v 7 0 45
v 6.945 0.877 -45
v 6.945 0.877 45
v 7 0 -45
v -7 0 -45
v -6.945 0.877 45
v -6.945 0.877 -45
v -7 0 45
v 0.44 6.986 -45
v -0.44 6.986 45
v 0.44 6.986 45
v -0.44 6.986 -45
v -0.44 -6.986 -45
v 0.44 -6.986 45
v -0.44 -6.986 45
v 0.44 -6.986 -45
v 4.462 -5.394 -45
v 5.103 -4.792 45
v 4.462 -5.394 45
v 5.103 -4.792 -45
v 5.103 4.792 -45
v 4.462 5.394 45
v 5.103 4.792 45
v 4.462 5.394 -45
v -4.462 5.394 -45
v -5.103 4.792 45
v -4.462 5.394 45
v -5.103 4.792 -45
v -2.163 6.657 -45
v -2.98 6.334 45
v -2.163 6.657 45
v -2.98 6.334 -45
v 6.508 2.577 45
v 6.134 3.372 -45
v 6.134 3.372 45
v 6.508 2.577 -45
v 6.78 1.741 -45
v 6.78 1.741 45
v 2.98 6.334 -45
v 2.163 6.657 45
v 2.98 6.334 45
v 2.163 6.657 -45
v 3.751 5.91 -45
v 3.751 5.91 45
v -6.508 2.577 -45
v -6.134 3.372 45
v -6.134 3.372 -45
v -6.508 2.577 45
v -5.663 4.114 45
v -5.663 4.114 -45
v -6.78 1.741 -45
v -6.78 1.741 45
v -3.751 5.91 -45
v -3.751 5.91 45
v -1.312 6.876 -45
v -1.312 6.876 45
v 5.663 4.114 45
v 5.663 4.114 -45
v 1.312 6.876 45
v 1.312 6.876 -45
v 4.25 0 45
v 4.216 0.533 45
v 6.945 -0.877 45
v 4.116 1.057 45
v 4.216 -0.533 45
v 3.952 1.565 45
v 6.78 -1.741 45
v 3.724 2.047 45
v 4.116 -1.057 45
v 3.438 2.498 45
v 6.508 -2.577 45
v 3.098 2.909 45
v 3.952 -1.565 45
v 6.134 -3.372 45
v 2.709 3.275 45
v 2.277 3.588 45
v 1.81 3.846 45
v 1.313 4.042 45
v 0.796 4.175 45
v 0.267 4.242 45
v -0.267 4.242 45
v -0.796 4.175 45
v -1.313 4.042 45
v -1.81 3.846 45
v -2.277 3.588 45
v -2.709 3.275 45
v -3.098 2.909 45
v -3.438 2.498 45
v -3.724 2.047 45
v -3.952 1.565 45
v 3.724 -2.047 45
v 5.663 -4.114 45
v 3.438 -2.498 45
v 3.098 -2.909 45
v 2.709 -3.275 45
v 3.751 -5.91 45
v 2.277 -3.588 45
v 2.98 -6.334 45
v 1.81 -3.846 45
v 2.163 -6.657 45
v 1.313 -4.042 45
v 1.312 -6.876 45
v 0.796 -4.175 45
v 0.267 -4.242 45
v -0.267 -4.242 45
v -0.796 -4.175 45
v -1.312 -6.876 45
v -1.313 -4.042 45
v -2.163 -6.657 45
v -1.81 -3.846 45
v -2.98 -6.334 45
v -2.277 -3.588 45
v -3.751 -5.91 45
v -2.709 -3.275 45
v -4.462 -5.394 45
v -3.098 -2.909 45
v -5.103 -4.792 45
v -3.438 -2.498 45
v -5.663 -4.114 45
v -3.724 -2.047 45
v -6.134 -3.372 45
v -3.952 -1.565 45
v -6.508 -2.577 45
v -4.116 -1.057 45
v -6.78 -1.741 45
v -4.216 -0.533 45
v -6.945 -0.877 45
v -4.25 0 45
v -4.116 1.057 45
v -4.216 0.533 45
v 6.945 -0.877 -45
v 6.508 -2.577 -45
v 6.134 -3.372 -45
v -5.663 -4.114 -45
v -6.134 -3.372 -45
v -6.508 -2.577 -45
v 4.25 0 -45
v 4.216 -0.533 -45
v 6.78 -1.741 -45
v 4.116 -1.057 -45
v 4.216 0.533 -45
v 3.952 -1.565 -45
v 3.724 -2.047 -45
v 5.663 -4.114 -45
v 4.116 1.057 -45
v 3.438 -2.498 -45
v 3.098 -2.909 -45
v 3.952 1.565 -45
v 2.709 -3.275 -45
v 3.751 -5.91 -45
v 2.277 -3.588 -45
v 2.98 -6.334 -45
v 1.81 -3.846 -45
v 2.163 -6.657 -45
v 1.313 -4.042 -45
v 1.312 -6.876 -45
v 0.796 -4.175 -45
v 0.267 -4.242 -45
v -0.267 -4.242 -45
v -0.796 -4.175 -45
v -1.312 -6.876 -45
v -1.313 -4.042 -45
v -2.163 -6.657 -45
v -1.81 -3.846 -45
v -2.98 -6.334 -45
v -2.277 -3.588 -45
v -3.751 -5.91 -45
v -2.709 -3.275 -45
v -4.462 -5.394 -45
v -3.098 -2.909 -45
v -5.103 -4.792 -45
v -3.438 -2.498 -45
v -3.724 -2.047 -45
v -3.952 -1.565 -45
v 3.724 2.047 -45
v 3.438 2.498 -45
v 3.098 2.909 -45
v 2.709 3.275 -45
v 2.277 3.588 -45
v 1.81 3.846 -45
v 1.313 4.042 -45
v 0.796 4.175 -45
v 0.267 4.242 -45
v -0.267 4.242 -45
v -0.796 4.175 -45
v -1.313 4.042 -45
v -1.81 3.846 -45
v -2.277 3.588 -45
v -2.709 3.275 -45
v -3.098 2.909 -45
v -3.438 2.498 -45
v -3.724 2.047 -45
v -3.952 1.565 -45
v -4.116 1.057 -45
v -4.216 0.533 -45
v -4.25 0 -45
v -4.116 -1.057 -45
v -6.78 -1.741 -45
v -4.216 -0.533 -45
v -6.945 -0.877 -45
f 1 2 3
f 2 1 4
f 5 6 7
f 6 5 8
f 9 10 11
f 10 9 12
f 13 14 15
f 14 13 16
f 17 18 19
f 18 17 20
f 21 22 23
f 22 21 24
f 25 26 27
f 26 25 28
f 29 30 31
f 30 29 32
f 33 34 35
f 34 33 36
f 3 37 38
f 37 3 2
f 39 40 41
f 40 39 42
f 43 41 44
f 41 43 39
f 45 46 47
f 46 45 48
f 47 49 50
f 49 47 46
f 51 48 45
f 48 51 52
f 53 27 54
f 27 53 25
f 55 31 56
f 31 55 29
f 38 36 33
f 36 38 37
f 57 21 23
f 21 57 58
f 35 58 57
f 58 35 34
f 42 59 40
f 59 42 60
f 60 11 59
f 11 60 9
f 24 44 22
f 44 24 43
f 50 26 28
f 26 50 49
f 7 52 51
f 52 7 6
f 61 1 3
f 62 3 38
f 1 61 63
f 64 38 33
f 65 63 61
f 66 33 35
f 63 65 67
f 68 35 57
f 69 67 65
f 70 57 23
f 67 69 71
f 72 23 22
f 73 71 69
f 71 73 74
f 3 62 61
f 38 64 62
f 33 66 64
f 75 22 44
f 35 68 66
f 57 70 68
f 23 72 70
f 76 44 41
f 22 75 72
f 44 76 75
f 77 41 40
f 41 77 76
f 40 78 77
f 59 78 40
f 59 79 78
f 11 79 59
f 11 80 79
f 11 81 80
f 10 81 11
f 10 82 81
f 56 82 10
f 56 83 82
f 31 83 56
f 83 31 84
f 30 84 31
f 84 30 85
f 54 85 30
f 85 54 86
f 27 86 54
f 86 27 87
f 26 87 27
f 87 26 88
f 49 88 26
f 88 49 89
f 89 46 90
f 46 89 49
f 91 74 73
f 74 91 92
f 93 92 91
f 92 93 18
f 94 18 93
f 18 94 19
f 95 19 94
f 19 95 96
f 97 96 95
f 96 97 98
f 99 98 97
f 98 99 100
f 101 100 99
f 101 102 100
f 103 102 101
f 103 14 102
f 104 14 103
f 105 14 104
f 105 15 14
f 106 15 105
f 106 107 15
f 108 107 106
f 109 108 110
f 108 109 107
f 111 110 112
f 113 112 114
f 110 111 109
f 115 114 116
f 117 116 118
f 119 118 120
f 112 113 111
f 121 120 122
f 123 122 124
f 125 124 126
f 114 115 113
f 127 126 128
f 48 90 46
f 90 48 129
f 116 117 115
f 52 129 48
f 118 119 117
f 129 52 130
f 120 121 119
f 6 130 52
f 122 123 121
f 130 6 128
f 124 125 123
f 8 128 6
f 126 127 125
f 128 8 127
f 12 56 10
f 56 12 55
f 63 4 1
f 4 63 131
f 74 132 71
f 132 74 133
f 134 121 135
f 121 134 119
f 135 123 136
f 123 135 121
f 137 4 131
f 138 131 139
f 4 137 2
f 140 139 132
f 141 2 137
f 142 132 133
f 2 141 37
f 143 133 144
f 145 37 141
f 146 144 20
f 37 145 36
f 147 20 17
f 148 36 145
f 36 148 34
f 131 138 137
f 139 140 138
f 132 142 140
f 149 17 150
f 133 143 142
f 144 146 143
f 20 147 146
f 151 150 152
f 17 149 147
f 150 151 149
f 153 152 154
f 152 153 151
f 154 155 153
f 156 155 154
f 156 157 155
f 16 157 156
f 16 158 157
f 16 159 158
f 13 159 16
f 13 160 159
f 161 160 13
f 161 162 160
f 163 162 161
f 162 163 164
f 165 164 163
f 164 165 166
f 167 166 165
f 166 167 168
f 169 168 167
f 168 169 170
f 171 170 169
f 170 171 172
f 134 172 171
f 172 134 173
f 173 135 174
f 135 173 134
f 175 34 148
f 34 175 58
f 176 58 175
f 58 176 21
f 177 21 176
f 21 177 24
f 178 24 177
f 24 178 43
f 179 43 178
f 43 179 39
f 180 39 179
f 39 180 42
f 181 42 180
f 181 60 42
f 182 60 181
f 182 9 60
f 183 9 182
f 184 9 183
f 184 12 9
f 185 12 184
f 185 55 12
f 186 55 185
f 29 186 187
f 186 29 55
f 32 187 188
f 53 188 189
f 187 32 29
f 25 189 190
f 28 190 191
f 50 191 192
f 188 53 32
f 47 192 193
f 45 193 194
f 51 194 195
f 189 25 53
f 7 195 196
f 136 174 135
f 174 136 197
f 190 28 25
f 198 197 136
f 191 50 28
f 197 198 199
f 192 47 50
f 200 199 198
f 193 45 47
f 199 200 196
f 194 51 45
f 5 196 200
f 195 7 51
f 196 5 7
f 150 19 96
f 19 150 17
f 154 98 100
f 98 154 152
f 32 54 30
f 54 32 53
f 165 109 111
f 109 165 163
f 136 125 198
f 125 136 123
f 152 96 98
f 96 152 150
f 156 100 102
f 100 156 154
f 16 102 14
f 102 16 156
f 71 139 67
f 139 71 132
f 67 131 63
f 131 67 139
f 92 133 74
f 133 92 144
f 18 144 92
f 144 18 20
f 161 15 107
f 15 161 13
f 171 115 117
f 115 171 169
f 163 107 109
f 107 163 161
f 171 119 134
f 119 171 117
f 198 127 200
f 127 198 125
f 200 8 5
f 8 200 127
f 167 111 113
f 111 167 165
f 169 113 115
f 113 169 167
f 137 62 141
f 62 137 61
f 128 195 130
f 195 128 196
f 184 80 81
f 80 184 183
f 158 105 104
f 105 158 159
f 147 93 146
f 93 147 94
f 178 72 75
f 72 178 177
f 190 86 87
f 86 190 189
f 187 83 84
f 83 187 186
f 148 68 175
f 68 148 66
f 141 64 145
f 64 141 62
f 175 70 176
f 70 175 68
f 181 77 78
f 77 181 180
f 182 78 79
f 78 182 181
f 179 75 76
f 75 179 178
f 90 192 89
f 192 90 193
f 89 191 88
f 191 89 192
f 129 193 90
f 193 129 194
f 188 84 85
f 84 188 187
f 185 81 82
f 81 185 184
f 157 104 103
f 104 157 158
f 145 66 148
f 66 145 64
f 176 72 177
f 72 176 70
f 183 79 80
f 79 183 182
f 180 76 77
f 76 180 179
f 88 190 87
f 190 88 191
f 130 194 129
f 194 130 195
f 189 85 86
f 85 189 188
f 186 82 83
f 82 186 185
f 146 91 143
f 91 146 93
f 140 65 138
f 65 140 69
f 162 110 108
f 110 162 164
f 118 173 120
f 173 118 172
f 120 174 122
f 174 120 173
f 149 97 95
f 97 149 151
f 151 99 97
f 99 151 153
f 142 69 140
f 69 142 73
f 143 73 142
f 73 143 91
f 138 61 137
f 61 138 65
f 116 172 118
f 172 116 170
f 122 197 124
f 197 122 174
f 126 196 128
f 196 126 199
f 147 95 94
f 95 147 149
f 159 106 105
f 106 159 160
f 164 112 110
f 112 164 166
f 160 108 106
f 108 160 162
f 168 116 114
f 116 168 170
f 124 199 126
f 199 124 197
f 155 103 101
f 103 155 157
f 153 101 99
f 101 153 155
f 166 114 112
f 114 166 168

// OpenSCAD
$fn = 50;


difference() {
	union() {
		translate(v = [0, 0, -45.0000000000]) {
			cylinder(h = 90, r = 7.0000000000);
		}
	}
	union() {
		translate(v = [0, 0, -100.0000000000]) {
			cylinder(h = 200, r = 4.2500000000);
		}
	}
}
